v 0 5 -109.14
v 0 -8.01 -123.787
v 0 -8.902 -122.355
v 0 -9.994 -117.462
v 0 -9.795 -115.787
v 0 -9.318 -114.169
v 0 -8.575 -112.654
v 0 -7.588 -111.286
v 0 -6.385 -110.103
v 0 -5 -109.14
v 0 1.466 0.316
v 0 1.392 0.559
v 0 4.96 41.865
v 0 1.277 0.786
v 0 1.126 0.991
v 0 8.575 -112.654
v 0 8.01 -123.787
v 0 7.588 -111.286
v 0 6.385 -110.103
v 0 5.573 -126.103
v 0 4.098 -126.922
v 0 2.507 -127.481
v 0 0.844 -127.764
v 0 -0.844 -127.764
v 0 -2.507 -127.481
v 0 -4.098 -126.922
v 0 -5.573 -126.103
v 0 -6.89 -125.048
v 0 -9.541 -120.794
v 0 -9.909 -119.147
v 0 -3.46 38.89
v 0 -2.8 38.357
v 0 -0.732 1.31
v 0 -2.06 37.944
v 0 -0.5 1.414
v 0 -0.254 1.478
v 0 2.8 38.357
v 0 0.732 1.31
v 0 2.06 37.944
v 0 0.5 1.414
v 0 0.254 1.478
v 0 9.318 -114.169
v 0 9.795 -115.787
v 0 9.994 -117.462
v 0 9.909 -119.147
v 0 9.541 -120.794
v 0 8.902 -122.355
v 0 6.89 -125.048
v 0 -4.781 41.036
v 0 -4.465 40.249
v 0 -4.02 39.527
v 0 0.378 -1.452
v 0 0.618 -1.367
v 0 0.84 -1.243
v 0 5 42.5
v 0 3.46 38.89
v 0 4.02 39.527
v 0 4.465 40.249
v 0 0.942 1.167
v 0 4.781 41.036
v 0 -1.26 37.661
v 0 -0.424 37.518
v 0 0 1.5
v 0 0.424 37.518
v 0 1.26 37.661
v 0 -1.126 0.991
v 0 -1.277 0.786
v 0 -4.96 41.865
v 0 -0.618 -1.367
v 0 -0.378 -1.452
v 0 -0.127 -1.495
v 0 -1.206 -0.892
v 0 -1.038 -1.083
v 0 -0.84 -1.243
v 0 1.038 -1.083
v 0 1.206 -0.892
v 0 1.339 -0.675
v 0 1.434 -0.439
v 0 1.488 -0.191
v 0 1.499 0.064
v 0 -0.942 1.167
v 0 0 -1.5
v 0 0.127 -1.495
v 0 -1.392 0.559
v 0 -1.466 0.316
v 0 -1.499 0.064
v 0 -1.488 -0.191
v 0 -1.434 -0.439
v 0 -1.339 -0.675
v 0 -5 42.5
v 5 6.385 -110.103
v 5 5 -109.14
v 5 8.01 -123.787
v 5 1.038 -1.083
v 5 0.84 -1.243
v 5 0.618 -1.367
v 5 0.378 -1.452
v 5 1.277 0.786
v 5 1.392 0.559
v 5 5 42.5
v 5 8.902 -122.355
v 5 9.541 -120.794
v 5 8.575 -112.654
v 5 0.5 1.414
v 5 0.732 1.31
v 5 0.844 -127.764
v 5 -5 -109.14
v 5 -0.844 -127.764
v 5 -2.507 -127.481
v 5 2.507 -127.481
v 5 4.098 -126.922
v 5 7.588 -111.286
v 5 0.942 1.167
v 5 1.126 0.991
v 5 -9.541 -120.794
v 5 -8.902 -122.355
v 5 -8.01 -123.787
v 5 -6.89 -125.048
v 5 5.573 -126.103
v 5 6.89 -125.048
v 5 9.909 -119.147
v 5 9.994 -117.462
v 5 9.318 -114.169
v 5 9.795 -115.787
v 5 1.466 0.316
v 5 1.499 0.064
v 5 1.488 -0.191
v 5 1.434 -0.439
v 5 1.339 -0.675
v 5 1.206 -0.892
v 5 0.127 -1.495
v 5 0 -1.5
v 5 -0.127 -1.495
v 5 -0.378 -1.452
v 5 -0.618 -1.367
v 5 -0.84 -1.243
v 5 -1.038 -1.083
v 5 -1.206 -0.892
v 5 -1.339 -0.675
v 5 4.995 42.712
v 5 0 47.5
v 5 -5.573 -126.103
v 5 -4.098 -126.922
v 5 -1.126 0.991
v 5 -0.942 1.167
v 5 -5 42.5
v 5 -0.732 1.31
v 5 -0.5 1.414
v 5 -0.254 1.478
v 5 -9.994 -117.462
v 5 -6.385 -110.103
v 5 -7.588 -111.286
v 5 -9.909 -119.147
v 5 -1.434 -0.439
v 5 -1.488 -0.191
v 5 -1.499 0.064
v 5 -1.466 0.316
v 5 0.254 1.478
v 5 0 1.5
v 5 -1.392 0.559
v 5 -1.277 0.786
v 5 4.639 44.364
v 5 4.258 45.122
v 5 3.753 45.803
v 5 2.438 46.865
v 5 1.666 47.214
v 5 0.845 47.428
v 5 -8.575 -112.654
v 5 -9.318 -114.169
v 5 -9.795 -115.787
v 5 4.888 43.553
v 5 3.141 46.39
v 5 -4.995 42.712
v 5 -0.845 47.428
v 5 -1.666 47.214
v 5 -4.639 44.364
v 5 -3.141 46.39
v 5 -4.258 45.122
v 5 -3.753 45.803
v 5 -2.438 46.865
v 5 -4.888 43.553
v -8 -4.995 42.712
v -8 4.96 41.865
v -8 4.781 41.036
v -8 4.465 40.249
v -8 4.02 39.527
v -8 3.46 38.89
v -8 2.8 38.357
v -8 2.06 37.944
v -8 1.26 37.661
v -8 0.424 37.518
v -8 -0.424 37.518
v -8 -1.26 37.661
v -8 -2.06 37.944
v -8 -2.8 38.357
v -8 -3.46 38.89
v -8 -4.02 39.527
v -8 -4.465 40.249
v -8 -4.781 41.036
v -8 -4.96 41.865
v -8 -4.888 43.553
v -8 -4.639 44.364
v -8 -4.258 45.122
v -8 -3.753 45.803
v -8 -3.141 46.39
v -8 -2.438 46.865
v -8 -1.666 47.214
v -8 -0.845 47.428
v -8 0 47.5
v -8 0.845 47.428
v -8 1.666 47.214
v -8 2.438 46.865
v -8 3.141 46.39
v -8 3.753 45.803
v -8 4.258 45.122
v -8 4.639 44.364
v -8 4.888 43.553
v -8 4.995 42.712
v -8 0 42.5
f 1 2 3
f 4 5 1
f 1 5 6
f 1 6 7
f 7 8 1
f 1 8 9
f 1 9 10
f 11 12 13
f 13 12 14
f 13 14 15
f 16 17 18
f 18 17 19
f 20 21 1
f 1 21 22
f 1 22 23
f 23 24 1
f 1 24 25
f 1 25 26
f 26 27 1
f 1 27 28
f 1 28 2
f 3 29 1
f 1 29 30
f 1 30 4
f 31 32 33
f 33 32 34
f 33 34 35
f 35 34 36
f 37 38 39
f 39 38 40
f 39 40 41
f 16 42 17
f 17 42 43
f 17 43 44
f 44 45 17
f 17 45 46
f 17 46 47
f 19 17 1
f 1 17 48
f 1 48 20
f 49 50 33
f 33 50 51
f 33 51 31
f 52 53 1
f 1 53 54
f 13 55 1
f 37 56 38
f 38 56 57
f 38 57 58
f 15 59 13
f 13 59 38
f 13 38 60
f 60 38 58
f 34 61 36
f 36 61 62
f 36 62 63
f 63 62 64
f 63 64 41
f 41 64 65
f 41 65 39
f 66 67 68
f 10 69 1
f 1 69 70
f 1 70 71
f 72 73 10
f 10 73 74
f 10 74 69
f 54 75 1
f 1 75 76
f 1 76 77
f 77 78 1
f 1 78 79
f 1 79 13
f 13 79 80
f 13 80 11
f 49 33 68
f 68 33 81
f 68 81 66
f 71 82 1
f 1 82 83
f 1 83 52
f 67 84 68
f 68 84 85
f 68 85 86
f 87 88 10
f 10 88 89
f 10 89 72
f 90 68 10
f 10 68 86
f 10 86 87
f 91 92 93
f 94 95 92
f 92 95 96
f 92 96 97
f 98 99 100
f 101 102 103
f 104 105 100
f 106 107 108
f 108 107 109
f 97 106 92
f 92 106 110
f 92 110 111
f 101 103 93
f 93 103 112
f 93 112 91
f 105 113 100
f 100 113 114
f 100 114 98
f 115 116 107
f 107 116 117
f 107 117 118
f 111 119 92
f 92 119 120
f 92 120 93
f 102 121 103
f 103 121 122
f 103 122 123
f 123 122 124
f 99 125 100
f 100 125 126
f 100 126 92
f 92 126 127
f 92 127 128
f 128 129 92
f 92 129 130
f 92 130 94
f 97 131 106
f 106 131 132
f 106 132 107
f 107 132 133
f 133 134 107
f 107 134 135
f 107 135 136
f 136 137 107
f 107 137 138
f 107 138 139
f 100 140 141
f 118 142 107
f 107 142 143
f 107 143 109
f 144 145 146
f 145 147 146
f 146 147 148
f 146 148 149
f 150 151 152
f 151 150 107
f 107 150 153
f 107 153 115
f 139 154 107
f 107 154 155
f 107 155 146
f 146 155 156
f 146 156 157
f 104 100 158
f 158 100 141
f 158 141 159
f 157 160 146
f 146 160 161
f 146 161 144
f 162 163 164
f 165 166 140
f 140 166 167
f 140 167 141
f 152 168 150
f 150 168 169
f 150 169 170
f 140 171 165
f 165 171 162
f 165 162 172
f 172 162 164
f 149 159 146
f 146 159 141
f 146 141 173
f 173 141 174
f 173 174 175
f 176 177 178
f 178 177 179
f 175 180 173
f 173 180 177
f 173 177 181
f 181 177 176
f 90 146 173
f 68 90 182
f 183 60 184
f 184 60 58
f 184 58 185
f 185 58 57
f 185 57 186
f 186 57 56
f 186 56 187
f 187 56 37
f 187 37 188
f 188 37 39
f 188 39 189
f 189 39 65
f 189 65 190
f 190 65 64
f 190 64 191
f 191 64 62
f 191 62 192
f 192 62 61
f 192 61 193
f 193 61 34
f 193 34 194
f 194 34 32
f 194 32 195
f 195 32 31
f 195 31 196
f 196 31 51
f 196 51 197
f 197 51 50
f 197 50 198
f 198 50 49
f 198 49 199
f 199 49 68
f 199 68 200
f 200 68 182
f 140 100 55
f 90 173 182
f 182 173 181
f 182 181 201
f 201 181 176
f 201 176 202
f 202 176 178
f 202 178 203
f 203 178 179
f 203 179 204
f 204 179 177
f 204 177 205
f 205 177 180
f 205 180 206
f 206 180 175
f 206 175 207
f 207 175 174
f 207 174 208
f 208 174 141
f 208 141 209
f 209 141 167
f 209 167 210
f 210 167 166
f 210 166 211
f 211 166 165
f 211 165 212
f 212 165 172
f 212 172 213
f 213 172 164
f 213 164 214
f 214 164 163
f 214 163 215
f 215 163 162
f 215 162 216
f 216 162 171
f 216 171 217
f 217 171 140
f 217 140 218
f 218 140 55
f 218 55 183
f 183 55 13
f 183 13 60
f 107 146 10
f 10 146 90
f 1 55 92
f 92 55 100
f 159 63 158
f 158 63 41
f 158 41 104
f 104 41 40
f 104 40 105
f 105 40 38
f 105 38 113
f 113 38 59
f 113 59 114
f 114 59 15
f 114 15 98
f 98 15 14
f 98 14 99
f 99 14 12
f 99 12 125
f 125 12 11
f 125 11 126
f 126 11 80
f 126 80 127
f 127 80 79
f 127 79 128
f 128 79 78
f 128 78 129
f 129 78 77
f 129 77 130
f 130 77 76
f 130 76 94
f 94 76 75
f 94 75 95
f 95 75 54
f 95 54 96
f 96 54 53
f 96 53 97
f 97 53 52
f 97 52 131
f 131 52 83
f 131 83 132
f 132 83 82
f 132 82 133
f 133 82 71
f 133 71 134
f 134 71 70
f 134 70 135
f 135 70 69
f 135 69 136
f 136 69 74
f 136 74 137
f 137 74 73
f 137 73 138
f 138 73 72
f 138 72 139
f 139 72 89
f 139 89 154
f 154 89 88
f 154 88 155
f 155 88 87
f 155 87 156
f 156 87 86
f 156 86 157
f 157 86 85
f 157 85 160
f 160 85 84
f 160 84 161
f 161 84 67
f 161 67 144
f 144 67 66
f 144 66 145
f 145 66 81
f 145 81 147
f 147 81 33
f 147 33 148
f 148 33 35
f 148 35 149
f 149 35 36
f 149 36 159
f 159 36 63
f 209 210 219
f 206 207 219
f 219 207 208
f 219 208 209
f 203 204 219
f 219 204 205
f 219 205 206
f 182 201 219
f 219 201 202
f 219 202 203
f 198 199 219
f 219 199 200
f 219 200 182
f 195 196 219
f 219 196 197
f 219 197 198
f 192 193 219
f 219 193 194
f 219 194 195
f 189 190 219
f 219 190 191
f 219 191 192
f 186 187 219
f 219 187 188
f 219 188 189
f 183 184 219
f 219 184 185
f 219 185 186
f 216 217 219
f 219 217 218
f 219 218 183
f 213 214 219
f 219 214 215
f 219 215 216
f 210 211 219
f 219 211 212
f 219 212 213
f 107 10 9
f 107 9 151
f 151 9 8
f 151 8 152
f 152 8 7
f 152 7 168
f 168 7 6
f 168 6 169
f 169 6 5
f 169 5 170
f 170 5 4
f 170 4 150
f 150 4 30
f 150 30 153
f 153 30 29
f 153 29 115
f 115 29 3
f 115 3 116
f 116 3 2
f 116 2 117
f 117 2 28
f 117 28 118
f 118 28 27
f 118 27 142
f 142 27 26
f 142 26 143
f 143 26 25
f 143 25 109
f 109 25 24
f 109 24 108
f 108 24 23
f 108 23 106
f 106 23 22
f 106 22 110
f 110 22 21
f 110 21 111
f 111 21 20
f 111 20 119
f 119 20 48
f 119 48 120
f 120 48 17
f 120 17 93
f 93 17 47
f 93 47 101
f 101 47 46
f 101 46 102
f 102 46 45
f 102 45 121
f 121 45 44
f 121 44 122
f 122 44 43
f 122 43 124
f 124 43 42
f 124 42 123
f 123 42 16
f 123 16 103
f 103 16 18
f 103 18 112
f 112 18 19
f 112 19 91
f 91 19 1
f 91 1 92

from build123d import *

# Parameters (mm, degrees)
ESBO_O1_R                = 1.5
RESSALTO_EXTRUS_O1_DEPTH = 5
RESSALTO_EXTRUS_O2_START = 8
ESBO_O2_R                = 5
RESSALTO_EXTRUS_O2_DEPTH = 8
ESBO_O3_R                = 10
RESSALTO_EXTRUS_O3_DEPTH = 5


with BuildPart() as part:
    # Esboço1 → Ressalto-extrusão1 (new body)
    with BuildSketch(Plane.YZ):
        with BuildLine():
            Line((5, 42.5), (5, -117.8))
            ThreePointArc((5, -117.8), (0, -122.8), (-5, -117.8))
            Line((-5, -117.8), (-5, 42.5))
            ThreePointArc((-5, 42.5), (0, 47.5), (5, 42.5))
        make_face()
        with Locations(Location((0, 0, 0), (0, 0, 270))):
            Circle(ESBO_O1_R, mode=Mode.SUBTRACT)
    extrude(amount=RESSALTO_EXTRUS_O1_DEPTH)

    # Esboço2 → Ressalto-extrusão2 (add)
    with BuildSketch(Plane(origin=(0, 0, 0), x_dir=(0, -1, 0), z_dir=(-1, 0, 0)).offset(RESSALTO_EXTRUS_O2_START)):
        with Locations(Location((0, 42.5, 0), (0, 0, 90))):
            Circle(ESBO_O2_R)
    extrude(amount=-RESSALTO_EXTRUS_O2_DEPTH)

    # Esboço3 → Ressalto-extrusão3 (add)
    with BuildSketch(Plane(origin=(0, 0, 0), x_dir=(0, -1, 0), z_dir=(-1, 0, 0))):
        with Locations((0, -117.8)):
            Circle(ESBO_O3_R)
    extrude(amount=-RESSALTO_EXTRUS_O3_DEPTH)


solid = part.part
